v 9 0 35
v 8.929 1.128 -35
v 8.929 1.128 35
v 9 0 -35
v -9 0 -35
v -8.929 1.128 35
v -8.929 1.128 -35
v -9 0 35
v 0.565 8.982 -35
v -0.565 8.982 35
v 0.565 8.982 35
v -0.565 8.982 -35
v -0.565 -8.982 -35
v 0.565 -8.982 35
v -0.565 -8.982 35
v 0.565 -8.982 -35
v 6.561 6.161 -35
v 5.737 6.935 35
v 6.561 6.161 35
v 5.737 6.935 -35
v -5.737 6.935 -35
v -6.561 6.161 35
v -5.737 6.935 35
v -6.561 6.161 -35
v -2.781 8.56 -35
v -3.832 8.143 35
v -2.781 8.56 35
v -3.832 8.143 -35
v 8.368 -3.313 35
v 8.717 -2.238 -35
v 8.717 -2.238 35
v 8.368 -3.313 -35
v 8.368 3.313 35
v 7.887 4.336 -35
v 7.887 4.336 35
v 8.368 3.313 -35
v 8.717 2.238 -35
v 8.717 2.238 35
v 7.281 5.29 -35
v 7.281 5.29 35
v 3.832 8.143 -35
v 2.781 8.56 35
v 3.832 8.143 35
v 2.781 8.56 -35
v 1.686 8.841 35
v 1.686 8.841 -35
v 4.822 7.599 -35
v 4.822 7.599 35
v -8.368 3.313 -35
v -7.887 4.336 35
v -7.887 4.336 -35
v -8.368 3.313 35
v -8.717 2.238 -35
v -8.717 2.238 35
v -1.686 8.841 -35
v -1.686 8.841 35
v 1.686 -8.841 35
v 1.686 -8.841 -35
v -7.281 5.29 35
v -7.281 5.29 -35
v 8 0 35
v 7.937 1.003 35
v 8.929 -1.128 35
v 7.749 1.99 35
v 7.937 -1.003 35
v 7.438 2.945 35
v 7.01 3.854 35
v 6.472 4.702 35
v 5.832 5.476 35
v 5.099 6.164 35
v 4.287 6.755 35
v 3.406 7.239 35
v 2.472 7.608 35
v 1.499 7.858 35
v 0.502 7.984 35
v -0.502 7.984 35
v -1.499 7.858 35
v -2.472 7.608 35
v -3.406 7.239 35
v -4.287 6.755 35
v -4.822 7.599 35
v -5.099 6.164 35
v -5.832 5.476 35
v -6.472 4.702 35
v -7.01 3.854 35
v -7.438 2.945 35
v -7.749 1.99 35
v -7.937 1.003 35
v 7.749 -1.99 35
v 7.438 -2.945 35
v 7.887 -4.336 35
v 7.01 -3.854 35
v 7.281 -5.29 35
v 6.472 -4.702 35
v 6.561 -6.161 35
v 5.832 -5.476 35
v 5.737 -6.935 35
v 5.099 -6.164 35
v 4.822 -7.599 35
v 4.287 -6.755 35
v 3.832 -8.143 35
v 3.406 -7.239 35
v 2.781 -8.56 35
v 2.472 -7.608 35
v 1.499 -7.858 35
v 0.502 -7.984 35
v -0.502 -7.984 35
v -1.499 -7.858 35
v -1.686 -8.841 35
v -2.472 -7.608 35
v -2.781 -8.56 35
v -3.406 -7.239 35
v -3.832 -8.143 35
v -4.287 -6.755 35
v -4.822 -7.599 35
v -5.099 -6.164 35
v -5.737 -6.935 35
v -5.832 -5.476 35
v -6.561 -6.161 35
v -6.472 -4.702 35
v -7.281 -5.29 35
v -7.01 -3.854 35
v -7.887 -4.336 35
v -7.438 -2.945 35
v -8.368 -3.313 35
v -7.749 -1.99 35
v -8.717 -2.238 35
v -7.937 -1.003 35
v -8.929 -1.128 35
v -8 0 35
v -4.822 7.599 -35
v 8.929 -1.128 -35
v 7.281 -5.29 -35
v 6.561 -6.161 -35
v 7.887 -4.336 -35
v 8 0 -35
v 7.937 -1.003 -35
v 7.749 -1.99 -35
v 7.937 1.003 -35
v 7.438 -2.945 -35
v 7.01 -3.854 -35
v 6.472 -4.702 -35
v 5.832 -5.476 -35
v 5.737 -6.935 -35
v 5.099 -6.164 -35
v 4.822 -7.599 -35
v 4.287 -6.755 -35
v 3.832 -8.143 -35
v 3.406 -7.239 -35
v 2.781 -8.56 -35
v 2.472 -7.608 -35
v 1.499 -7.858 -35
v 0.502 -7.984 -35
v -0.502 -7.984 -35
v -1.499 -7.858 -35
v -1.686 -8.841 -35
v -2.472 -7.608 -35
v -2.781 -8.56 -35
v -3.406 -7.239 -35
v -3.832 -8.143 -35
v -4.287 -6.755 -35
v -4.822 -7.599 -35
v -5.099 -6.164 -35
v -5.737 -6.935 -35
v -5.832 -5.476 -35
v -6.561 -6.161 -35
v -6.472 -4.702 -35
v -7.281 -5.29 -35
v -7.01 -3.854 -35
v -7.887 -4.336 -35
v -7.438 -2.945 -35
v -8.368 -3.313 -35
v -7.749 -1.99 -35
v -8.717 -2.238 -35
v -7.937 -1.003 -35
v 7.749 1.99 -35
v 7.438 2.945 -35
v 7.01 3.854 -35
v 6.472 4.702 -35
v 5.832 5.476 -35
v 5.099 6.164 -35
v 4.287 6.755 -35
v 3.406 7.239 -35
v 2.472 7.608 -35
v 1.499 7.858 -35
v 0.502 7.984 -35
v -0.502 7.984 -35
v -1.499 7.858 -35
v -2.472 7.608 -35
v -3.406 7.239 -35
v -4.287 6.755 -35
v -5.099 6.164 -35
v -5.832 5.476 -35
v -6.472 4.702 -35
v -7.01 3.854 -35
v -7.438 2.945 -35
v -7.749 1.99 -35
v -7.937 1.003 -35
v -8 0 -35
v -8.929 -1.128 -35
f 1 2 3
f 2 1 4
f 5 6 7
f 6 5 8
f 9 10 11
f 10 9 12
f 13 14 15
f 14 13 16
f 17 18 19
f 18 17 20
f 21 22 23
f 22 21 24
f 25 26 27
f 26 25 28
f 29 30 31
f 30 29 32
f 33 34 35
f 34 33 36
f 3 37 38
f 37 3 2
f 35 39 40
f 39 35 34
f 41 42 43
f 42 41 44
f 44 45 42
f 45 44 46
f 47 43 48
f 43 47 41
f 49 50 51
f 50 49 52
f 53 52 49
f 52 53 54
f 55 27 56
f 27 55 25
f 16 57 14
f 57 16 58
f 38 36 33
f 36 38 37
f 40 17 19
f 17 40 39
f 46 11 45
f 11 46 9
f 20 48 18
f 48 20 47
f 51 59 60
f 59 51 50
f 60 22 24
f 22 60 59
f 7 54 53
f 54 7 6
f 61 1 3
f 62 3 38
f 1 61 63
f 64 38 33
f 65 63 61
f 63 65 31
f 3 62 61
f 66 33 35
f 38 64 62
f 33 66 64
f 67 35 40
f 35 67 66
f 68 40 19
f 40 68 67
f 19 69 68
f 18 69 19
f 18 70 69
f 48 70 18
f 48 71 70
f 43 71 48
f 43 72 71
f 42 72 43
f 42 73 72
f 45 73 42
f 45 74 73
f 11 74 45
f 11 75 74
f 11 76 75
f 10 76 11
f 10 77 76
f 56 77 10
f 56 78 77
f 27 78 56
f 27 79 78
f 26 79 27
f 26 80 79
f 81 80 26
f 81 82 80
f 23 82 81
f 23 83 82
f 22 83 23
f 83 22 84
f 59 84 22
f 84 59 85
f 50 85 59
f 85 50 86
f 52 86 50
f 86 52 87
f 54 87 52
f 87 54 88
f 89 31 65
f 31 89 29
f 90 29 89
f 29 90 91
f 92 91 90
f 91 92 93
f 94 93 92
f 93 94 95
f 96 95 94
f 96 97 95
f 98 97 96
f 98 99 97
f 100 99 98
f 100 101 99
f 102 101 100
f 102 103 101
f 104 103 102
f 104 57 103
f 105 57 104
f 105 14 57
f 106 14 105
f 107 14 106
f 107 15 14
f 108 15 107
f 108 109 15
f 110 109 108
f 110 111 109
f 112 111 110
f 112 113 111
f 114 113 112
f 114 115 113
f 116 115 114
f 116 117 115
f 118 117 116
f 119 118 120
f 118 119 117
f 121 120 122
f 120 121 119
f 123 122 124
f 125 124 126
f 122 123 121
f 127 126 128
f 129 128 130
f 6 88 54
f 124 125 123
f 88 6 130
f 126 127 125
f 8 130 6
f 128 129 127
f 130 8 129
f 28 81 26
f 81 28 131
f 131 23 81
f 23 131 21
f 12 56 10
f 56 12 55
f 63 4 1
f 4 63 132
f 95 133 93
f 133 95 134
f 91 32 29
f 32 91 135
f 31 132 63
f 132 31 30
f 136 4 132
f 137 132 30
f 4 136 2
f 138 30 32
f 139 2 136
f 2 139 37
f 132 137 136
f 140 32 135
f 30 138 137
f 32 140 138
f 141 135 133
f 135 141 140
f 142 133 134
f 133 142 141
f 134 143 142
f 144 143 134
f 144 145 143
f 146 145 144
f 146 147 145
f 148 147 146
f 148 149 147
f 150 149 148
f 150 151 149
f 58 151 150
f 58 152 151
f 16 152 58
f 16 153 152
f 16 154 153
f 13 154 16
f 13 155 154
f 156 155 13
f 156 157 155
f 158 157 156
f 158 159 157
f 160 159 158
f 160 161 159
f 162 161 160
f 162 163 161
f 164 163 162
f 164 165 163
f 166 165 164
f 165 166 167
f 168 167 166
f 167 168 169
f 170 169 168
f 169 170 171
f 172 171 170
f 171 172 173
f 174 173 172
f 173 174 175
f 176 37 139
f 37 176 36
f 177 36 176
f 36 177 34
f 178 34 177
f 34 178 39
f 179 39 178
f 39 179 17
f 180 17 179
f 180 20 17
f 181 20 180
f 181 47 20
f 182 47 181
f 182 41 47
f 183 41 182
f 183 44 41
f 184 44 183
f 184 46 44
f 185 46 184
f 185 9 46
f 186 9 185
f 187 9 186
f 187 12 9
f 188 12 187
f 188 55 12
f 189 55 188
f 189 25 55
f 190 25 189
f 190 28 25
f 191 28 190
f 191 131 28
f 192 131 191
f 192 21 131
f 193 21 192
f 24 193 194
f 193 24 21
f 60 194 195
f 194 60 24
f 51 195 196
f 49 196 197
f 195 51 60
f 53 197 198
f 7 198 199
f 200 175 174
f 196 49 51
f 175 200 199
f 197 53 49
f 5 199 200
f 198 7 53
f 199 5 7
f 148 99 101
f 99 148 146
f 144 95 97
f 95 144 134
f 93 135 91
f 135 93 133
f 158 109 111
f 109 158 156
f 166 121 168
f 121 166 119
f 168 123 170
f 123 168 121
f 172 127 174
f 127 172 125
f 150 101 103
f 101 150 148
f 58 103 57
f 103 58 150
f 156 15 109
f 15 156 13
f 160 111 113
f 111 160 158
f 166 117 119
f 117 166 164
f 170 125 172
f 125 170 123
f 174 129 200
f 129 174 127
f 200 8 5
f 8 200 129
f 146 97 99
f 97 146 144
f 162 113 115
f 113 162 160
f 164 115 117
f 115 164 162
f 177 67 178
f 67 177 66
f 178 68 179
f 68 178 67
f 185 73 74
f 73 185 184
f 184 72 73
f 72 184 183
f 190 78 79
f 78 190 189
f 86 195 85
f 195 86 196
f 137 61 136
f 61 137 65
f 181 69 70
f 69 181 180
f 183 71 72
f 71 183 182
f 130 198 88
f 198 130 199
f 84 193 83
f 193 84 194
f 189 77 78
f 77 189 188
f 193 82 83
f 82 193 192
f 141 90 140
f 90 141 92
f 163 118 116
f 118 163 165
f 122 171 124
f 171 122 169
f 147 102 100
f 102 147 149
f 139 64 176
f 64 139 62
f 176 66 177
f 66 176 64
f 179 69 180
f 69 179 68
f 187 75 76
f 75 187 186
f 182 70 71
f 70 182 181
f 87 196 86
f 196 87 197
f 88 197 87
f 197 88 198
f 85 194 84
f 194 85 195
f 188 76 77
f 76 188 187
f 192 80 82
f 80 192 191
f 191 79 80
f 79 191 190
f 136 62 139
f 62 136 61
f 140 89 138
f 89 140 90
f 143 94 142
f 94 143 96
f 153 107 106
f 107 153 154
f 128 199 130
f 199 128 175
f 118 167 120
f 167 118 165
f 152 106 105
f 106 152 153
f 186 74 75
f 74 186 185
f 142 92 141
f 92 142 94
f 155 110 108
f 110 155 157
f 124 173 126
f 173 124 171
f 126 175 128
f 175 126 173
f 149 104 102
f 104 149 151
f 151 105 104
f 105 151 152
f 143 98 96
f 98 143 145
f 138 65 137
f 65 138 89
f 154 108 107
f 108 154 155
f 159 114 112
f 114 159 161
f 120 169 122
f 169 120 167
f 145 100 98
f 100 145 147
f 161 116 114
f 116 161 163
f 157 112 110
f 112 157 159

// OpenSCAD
$fn = 50;


difference() {
	union() {
		translate(v = [0, 0, -35.0000000000]) {
			cylinder(h = 70, r = 9.0000000000);
		}
	}
	union() {
		translate(v = [0, 0, -100.0000000000]) {
			cylinder(h = 200, r = 8);
		}
	}
}
